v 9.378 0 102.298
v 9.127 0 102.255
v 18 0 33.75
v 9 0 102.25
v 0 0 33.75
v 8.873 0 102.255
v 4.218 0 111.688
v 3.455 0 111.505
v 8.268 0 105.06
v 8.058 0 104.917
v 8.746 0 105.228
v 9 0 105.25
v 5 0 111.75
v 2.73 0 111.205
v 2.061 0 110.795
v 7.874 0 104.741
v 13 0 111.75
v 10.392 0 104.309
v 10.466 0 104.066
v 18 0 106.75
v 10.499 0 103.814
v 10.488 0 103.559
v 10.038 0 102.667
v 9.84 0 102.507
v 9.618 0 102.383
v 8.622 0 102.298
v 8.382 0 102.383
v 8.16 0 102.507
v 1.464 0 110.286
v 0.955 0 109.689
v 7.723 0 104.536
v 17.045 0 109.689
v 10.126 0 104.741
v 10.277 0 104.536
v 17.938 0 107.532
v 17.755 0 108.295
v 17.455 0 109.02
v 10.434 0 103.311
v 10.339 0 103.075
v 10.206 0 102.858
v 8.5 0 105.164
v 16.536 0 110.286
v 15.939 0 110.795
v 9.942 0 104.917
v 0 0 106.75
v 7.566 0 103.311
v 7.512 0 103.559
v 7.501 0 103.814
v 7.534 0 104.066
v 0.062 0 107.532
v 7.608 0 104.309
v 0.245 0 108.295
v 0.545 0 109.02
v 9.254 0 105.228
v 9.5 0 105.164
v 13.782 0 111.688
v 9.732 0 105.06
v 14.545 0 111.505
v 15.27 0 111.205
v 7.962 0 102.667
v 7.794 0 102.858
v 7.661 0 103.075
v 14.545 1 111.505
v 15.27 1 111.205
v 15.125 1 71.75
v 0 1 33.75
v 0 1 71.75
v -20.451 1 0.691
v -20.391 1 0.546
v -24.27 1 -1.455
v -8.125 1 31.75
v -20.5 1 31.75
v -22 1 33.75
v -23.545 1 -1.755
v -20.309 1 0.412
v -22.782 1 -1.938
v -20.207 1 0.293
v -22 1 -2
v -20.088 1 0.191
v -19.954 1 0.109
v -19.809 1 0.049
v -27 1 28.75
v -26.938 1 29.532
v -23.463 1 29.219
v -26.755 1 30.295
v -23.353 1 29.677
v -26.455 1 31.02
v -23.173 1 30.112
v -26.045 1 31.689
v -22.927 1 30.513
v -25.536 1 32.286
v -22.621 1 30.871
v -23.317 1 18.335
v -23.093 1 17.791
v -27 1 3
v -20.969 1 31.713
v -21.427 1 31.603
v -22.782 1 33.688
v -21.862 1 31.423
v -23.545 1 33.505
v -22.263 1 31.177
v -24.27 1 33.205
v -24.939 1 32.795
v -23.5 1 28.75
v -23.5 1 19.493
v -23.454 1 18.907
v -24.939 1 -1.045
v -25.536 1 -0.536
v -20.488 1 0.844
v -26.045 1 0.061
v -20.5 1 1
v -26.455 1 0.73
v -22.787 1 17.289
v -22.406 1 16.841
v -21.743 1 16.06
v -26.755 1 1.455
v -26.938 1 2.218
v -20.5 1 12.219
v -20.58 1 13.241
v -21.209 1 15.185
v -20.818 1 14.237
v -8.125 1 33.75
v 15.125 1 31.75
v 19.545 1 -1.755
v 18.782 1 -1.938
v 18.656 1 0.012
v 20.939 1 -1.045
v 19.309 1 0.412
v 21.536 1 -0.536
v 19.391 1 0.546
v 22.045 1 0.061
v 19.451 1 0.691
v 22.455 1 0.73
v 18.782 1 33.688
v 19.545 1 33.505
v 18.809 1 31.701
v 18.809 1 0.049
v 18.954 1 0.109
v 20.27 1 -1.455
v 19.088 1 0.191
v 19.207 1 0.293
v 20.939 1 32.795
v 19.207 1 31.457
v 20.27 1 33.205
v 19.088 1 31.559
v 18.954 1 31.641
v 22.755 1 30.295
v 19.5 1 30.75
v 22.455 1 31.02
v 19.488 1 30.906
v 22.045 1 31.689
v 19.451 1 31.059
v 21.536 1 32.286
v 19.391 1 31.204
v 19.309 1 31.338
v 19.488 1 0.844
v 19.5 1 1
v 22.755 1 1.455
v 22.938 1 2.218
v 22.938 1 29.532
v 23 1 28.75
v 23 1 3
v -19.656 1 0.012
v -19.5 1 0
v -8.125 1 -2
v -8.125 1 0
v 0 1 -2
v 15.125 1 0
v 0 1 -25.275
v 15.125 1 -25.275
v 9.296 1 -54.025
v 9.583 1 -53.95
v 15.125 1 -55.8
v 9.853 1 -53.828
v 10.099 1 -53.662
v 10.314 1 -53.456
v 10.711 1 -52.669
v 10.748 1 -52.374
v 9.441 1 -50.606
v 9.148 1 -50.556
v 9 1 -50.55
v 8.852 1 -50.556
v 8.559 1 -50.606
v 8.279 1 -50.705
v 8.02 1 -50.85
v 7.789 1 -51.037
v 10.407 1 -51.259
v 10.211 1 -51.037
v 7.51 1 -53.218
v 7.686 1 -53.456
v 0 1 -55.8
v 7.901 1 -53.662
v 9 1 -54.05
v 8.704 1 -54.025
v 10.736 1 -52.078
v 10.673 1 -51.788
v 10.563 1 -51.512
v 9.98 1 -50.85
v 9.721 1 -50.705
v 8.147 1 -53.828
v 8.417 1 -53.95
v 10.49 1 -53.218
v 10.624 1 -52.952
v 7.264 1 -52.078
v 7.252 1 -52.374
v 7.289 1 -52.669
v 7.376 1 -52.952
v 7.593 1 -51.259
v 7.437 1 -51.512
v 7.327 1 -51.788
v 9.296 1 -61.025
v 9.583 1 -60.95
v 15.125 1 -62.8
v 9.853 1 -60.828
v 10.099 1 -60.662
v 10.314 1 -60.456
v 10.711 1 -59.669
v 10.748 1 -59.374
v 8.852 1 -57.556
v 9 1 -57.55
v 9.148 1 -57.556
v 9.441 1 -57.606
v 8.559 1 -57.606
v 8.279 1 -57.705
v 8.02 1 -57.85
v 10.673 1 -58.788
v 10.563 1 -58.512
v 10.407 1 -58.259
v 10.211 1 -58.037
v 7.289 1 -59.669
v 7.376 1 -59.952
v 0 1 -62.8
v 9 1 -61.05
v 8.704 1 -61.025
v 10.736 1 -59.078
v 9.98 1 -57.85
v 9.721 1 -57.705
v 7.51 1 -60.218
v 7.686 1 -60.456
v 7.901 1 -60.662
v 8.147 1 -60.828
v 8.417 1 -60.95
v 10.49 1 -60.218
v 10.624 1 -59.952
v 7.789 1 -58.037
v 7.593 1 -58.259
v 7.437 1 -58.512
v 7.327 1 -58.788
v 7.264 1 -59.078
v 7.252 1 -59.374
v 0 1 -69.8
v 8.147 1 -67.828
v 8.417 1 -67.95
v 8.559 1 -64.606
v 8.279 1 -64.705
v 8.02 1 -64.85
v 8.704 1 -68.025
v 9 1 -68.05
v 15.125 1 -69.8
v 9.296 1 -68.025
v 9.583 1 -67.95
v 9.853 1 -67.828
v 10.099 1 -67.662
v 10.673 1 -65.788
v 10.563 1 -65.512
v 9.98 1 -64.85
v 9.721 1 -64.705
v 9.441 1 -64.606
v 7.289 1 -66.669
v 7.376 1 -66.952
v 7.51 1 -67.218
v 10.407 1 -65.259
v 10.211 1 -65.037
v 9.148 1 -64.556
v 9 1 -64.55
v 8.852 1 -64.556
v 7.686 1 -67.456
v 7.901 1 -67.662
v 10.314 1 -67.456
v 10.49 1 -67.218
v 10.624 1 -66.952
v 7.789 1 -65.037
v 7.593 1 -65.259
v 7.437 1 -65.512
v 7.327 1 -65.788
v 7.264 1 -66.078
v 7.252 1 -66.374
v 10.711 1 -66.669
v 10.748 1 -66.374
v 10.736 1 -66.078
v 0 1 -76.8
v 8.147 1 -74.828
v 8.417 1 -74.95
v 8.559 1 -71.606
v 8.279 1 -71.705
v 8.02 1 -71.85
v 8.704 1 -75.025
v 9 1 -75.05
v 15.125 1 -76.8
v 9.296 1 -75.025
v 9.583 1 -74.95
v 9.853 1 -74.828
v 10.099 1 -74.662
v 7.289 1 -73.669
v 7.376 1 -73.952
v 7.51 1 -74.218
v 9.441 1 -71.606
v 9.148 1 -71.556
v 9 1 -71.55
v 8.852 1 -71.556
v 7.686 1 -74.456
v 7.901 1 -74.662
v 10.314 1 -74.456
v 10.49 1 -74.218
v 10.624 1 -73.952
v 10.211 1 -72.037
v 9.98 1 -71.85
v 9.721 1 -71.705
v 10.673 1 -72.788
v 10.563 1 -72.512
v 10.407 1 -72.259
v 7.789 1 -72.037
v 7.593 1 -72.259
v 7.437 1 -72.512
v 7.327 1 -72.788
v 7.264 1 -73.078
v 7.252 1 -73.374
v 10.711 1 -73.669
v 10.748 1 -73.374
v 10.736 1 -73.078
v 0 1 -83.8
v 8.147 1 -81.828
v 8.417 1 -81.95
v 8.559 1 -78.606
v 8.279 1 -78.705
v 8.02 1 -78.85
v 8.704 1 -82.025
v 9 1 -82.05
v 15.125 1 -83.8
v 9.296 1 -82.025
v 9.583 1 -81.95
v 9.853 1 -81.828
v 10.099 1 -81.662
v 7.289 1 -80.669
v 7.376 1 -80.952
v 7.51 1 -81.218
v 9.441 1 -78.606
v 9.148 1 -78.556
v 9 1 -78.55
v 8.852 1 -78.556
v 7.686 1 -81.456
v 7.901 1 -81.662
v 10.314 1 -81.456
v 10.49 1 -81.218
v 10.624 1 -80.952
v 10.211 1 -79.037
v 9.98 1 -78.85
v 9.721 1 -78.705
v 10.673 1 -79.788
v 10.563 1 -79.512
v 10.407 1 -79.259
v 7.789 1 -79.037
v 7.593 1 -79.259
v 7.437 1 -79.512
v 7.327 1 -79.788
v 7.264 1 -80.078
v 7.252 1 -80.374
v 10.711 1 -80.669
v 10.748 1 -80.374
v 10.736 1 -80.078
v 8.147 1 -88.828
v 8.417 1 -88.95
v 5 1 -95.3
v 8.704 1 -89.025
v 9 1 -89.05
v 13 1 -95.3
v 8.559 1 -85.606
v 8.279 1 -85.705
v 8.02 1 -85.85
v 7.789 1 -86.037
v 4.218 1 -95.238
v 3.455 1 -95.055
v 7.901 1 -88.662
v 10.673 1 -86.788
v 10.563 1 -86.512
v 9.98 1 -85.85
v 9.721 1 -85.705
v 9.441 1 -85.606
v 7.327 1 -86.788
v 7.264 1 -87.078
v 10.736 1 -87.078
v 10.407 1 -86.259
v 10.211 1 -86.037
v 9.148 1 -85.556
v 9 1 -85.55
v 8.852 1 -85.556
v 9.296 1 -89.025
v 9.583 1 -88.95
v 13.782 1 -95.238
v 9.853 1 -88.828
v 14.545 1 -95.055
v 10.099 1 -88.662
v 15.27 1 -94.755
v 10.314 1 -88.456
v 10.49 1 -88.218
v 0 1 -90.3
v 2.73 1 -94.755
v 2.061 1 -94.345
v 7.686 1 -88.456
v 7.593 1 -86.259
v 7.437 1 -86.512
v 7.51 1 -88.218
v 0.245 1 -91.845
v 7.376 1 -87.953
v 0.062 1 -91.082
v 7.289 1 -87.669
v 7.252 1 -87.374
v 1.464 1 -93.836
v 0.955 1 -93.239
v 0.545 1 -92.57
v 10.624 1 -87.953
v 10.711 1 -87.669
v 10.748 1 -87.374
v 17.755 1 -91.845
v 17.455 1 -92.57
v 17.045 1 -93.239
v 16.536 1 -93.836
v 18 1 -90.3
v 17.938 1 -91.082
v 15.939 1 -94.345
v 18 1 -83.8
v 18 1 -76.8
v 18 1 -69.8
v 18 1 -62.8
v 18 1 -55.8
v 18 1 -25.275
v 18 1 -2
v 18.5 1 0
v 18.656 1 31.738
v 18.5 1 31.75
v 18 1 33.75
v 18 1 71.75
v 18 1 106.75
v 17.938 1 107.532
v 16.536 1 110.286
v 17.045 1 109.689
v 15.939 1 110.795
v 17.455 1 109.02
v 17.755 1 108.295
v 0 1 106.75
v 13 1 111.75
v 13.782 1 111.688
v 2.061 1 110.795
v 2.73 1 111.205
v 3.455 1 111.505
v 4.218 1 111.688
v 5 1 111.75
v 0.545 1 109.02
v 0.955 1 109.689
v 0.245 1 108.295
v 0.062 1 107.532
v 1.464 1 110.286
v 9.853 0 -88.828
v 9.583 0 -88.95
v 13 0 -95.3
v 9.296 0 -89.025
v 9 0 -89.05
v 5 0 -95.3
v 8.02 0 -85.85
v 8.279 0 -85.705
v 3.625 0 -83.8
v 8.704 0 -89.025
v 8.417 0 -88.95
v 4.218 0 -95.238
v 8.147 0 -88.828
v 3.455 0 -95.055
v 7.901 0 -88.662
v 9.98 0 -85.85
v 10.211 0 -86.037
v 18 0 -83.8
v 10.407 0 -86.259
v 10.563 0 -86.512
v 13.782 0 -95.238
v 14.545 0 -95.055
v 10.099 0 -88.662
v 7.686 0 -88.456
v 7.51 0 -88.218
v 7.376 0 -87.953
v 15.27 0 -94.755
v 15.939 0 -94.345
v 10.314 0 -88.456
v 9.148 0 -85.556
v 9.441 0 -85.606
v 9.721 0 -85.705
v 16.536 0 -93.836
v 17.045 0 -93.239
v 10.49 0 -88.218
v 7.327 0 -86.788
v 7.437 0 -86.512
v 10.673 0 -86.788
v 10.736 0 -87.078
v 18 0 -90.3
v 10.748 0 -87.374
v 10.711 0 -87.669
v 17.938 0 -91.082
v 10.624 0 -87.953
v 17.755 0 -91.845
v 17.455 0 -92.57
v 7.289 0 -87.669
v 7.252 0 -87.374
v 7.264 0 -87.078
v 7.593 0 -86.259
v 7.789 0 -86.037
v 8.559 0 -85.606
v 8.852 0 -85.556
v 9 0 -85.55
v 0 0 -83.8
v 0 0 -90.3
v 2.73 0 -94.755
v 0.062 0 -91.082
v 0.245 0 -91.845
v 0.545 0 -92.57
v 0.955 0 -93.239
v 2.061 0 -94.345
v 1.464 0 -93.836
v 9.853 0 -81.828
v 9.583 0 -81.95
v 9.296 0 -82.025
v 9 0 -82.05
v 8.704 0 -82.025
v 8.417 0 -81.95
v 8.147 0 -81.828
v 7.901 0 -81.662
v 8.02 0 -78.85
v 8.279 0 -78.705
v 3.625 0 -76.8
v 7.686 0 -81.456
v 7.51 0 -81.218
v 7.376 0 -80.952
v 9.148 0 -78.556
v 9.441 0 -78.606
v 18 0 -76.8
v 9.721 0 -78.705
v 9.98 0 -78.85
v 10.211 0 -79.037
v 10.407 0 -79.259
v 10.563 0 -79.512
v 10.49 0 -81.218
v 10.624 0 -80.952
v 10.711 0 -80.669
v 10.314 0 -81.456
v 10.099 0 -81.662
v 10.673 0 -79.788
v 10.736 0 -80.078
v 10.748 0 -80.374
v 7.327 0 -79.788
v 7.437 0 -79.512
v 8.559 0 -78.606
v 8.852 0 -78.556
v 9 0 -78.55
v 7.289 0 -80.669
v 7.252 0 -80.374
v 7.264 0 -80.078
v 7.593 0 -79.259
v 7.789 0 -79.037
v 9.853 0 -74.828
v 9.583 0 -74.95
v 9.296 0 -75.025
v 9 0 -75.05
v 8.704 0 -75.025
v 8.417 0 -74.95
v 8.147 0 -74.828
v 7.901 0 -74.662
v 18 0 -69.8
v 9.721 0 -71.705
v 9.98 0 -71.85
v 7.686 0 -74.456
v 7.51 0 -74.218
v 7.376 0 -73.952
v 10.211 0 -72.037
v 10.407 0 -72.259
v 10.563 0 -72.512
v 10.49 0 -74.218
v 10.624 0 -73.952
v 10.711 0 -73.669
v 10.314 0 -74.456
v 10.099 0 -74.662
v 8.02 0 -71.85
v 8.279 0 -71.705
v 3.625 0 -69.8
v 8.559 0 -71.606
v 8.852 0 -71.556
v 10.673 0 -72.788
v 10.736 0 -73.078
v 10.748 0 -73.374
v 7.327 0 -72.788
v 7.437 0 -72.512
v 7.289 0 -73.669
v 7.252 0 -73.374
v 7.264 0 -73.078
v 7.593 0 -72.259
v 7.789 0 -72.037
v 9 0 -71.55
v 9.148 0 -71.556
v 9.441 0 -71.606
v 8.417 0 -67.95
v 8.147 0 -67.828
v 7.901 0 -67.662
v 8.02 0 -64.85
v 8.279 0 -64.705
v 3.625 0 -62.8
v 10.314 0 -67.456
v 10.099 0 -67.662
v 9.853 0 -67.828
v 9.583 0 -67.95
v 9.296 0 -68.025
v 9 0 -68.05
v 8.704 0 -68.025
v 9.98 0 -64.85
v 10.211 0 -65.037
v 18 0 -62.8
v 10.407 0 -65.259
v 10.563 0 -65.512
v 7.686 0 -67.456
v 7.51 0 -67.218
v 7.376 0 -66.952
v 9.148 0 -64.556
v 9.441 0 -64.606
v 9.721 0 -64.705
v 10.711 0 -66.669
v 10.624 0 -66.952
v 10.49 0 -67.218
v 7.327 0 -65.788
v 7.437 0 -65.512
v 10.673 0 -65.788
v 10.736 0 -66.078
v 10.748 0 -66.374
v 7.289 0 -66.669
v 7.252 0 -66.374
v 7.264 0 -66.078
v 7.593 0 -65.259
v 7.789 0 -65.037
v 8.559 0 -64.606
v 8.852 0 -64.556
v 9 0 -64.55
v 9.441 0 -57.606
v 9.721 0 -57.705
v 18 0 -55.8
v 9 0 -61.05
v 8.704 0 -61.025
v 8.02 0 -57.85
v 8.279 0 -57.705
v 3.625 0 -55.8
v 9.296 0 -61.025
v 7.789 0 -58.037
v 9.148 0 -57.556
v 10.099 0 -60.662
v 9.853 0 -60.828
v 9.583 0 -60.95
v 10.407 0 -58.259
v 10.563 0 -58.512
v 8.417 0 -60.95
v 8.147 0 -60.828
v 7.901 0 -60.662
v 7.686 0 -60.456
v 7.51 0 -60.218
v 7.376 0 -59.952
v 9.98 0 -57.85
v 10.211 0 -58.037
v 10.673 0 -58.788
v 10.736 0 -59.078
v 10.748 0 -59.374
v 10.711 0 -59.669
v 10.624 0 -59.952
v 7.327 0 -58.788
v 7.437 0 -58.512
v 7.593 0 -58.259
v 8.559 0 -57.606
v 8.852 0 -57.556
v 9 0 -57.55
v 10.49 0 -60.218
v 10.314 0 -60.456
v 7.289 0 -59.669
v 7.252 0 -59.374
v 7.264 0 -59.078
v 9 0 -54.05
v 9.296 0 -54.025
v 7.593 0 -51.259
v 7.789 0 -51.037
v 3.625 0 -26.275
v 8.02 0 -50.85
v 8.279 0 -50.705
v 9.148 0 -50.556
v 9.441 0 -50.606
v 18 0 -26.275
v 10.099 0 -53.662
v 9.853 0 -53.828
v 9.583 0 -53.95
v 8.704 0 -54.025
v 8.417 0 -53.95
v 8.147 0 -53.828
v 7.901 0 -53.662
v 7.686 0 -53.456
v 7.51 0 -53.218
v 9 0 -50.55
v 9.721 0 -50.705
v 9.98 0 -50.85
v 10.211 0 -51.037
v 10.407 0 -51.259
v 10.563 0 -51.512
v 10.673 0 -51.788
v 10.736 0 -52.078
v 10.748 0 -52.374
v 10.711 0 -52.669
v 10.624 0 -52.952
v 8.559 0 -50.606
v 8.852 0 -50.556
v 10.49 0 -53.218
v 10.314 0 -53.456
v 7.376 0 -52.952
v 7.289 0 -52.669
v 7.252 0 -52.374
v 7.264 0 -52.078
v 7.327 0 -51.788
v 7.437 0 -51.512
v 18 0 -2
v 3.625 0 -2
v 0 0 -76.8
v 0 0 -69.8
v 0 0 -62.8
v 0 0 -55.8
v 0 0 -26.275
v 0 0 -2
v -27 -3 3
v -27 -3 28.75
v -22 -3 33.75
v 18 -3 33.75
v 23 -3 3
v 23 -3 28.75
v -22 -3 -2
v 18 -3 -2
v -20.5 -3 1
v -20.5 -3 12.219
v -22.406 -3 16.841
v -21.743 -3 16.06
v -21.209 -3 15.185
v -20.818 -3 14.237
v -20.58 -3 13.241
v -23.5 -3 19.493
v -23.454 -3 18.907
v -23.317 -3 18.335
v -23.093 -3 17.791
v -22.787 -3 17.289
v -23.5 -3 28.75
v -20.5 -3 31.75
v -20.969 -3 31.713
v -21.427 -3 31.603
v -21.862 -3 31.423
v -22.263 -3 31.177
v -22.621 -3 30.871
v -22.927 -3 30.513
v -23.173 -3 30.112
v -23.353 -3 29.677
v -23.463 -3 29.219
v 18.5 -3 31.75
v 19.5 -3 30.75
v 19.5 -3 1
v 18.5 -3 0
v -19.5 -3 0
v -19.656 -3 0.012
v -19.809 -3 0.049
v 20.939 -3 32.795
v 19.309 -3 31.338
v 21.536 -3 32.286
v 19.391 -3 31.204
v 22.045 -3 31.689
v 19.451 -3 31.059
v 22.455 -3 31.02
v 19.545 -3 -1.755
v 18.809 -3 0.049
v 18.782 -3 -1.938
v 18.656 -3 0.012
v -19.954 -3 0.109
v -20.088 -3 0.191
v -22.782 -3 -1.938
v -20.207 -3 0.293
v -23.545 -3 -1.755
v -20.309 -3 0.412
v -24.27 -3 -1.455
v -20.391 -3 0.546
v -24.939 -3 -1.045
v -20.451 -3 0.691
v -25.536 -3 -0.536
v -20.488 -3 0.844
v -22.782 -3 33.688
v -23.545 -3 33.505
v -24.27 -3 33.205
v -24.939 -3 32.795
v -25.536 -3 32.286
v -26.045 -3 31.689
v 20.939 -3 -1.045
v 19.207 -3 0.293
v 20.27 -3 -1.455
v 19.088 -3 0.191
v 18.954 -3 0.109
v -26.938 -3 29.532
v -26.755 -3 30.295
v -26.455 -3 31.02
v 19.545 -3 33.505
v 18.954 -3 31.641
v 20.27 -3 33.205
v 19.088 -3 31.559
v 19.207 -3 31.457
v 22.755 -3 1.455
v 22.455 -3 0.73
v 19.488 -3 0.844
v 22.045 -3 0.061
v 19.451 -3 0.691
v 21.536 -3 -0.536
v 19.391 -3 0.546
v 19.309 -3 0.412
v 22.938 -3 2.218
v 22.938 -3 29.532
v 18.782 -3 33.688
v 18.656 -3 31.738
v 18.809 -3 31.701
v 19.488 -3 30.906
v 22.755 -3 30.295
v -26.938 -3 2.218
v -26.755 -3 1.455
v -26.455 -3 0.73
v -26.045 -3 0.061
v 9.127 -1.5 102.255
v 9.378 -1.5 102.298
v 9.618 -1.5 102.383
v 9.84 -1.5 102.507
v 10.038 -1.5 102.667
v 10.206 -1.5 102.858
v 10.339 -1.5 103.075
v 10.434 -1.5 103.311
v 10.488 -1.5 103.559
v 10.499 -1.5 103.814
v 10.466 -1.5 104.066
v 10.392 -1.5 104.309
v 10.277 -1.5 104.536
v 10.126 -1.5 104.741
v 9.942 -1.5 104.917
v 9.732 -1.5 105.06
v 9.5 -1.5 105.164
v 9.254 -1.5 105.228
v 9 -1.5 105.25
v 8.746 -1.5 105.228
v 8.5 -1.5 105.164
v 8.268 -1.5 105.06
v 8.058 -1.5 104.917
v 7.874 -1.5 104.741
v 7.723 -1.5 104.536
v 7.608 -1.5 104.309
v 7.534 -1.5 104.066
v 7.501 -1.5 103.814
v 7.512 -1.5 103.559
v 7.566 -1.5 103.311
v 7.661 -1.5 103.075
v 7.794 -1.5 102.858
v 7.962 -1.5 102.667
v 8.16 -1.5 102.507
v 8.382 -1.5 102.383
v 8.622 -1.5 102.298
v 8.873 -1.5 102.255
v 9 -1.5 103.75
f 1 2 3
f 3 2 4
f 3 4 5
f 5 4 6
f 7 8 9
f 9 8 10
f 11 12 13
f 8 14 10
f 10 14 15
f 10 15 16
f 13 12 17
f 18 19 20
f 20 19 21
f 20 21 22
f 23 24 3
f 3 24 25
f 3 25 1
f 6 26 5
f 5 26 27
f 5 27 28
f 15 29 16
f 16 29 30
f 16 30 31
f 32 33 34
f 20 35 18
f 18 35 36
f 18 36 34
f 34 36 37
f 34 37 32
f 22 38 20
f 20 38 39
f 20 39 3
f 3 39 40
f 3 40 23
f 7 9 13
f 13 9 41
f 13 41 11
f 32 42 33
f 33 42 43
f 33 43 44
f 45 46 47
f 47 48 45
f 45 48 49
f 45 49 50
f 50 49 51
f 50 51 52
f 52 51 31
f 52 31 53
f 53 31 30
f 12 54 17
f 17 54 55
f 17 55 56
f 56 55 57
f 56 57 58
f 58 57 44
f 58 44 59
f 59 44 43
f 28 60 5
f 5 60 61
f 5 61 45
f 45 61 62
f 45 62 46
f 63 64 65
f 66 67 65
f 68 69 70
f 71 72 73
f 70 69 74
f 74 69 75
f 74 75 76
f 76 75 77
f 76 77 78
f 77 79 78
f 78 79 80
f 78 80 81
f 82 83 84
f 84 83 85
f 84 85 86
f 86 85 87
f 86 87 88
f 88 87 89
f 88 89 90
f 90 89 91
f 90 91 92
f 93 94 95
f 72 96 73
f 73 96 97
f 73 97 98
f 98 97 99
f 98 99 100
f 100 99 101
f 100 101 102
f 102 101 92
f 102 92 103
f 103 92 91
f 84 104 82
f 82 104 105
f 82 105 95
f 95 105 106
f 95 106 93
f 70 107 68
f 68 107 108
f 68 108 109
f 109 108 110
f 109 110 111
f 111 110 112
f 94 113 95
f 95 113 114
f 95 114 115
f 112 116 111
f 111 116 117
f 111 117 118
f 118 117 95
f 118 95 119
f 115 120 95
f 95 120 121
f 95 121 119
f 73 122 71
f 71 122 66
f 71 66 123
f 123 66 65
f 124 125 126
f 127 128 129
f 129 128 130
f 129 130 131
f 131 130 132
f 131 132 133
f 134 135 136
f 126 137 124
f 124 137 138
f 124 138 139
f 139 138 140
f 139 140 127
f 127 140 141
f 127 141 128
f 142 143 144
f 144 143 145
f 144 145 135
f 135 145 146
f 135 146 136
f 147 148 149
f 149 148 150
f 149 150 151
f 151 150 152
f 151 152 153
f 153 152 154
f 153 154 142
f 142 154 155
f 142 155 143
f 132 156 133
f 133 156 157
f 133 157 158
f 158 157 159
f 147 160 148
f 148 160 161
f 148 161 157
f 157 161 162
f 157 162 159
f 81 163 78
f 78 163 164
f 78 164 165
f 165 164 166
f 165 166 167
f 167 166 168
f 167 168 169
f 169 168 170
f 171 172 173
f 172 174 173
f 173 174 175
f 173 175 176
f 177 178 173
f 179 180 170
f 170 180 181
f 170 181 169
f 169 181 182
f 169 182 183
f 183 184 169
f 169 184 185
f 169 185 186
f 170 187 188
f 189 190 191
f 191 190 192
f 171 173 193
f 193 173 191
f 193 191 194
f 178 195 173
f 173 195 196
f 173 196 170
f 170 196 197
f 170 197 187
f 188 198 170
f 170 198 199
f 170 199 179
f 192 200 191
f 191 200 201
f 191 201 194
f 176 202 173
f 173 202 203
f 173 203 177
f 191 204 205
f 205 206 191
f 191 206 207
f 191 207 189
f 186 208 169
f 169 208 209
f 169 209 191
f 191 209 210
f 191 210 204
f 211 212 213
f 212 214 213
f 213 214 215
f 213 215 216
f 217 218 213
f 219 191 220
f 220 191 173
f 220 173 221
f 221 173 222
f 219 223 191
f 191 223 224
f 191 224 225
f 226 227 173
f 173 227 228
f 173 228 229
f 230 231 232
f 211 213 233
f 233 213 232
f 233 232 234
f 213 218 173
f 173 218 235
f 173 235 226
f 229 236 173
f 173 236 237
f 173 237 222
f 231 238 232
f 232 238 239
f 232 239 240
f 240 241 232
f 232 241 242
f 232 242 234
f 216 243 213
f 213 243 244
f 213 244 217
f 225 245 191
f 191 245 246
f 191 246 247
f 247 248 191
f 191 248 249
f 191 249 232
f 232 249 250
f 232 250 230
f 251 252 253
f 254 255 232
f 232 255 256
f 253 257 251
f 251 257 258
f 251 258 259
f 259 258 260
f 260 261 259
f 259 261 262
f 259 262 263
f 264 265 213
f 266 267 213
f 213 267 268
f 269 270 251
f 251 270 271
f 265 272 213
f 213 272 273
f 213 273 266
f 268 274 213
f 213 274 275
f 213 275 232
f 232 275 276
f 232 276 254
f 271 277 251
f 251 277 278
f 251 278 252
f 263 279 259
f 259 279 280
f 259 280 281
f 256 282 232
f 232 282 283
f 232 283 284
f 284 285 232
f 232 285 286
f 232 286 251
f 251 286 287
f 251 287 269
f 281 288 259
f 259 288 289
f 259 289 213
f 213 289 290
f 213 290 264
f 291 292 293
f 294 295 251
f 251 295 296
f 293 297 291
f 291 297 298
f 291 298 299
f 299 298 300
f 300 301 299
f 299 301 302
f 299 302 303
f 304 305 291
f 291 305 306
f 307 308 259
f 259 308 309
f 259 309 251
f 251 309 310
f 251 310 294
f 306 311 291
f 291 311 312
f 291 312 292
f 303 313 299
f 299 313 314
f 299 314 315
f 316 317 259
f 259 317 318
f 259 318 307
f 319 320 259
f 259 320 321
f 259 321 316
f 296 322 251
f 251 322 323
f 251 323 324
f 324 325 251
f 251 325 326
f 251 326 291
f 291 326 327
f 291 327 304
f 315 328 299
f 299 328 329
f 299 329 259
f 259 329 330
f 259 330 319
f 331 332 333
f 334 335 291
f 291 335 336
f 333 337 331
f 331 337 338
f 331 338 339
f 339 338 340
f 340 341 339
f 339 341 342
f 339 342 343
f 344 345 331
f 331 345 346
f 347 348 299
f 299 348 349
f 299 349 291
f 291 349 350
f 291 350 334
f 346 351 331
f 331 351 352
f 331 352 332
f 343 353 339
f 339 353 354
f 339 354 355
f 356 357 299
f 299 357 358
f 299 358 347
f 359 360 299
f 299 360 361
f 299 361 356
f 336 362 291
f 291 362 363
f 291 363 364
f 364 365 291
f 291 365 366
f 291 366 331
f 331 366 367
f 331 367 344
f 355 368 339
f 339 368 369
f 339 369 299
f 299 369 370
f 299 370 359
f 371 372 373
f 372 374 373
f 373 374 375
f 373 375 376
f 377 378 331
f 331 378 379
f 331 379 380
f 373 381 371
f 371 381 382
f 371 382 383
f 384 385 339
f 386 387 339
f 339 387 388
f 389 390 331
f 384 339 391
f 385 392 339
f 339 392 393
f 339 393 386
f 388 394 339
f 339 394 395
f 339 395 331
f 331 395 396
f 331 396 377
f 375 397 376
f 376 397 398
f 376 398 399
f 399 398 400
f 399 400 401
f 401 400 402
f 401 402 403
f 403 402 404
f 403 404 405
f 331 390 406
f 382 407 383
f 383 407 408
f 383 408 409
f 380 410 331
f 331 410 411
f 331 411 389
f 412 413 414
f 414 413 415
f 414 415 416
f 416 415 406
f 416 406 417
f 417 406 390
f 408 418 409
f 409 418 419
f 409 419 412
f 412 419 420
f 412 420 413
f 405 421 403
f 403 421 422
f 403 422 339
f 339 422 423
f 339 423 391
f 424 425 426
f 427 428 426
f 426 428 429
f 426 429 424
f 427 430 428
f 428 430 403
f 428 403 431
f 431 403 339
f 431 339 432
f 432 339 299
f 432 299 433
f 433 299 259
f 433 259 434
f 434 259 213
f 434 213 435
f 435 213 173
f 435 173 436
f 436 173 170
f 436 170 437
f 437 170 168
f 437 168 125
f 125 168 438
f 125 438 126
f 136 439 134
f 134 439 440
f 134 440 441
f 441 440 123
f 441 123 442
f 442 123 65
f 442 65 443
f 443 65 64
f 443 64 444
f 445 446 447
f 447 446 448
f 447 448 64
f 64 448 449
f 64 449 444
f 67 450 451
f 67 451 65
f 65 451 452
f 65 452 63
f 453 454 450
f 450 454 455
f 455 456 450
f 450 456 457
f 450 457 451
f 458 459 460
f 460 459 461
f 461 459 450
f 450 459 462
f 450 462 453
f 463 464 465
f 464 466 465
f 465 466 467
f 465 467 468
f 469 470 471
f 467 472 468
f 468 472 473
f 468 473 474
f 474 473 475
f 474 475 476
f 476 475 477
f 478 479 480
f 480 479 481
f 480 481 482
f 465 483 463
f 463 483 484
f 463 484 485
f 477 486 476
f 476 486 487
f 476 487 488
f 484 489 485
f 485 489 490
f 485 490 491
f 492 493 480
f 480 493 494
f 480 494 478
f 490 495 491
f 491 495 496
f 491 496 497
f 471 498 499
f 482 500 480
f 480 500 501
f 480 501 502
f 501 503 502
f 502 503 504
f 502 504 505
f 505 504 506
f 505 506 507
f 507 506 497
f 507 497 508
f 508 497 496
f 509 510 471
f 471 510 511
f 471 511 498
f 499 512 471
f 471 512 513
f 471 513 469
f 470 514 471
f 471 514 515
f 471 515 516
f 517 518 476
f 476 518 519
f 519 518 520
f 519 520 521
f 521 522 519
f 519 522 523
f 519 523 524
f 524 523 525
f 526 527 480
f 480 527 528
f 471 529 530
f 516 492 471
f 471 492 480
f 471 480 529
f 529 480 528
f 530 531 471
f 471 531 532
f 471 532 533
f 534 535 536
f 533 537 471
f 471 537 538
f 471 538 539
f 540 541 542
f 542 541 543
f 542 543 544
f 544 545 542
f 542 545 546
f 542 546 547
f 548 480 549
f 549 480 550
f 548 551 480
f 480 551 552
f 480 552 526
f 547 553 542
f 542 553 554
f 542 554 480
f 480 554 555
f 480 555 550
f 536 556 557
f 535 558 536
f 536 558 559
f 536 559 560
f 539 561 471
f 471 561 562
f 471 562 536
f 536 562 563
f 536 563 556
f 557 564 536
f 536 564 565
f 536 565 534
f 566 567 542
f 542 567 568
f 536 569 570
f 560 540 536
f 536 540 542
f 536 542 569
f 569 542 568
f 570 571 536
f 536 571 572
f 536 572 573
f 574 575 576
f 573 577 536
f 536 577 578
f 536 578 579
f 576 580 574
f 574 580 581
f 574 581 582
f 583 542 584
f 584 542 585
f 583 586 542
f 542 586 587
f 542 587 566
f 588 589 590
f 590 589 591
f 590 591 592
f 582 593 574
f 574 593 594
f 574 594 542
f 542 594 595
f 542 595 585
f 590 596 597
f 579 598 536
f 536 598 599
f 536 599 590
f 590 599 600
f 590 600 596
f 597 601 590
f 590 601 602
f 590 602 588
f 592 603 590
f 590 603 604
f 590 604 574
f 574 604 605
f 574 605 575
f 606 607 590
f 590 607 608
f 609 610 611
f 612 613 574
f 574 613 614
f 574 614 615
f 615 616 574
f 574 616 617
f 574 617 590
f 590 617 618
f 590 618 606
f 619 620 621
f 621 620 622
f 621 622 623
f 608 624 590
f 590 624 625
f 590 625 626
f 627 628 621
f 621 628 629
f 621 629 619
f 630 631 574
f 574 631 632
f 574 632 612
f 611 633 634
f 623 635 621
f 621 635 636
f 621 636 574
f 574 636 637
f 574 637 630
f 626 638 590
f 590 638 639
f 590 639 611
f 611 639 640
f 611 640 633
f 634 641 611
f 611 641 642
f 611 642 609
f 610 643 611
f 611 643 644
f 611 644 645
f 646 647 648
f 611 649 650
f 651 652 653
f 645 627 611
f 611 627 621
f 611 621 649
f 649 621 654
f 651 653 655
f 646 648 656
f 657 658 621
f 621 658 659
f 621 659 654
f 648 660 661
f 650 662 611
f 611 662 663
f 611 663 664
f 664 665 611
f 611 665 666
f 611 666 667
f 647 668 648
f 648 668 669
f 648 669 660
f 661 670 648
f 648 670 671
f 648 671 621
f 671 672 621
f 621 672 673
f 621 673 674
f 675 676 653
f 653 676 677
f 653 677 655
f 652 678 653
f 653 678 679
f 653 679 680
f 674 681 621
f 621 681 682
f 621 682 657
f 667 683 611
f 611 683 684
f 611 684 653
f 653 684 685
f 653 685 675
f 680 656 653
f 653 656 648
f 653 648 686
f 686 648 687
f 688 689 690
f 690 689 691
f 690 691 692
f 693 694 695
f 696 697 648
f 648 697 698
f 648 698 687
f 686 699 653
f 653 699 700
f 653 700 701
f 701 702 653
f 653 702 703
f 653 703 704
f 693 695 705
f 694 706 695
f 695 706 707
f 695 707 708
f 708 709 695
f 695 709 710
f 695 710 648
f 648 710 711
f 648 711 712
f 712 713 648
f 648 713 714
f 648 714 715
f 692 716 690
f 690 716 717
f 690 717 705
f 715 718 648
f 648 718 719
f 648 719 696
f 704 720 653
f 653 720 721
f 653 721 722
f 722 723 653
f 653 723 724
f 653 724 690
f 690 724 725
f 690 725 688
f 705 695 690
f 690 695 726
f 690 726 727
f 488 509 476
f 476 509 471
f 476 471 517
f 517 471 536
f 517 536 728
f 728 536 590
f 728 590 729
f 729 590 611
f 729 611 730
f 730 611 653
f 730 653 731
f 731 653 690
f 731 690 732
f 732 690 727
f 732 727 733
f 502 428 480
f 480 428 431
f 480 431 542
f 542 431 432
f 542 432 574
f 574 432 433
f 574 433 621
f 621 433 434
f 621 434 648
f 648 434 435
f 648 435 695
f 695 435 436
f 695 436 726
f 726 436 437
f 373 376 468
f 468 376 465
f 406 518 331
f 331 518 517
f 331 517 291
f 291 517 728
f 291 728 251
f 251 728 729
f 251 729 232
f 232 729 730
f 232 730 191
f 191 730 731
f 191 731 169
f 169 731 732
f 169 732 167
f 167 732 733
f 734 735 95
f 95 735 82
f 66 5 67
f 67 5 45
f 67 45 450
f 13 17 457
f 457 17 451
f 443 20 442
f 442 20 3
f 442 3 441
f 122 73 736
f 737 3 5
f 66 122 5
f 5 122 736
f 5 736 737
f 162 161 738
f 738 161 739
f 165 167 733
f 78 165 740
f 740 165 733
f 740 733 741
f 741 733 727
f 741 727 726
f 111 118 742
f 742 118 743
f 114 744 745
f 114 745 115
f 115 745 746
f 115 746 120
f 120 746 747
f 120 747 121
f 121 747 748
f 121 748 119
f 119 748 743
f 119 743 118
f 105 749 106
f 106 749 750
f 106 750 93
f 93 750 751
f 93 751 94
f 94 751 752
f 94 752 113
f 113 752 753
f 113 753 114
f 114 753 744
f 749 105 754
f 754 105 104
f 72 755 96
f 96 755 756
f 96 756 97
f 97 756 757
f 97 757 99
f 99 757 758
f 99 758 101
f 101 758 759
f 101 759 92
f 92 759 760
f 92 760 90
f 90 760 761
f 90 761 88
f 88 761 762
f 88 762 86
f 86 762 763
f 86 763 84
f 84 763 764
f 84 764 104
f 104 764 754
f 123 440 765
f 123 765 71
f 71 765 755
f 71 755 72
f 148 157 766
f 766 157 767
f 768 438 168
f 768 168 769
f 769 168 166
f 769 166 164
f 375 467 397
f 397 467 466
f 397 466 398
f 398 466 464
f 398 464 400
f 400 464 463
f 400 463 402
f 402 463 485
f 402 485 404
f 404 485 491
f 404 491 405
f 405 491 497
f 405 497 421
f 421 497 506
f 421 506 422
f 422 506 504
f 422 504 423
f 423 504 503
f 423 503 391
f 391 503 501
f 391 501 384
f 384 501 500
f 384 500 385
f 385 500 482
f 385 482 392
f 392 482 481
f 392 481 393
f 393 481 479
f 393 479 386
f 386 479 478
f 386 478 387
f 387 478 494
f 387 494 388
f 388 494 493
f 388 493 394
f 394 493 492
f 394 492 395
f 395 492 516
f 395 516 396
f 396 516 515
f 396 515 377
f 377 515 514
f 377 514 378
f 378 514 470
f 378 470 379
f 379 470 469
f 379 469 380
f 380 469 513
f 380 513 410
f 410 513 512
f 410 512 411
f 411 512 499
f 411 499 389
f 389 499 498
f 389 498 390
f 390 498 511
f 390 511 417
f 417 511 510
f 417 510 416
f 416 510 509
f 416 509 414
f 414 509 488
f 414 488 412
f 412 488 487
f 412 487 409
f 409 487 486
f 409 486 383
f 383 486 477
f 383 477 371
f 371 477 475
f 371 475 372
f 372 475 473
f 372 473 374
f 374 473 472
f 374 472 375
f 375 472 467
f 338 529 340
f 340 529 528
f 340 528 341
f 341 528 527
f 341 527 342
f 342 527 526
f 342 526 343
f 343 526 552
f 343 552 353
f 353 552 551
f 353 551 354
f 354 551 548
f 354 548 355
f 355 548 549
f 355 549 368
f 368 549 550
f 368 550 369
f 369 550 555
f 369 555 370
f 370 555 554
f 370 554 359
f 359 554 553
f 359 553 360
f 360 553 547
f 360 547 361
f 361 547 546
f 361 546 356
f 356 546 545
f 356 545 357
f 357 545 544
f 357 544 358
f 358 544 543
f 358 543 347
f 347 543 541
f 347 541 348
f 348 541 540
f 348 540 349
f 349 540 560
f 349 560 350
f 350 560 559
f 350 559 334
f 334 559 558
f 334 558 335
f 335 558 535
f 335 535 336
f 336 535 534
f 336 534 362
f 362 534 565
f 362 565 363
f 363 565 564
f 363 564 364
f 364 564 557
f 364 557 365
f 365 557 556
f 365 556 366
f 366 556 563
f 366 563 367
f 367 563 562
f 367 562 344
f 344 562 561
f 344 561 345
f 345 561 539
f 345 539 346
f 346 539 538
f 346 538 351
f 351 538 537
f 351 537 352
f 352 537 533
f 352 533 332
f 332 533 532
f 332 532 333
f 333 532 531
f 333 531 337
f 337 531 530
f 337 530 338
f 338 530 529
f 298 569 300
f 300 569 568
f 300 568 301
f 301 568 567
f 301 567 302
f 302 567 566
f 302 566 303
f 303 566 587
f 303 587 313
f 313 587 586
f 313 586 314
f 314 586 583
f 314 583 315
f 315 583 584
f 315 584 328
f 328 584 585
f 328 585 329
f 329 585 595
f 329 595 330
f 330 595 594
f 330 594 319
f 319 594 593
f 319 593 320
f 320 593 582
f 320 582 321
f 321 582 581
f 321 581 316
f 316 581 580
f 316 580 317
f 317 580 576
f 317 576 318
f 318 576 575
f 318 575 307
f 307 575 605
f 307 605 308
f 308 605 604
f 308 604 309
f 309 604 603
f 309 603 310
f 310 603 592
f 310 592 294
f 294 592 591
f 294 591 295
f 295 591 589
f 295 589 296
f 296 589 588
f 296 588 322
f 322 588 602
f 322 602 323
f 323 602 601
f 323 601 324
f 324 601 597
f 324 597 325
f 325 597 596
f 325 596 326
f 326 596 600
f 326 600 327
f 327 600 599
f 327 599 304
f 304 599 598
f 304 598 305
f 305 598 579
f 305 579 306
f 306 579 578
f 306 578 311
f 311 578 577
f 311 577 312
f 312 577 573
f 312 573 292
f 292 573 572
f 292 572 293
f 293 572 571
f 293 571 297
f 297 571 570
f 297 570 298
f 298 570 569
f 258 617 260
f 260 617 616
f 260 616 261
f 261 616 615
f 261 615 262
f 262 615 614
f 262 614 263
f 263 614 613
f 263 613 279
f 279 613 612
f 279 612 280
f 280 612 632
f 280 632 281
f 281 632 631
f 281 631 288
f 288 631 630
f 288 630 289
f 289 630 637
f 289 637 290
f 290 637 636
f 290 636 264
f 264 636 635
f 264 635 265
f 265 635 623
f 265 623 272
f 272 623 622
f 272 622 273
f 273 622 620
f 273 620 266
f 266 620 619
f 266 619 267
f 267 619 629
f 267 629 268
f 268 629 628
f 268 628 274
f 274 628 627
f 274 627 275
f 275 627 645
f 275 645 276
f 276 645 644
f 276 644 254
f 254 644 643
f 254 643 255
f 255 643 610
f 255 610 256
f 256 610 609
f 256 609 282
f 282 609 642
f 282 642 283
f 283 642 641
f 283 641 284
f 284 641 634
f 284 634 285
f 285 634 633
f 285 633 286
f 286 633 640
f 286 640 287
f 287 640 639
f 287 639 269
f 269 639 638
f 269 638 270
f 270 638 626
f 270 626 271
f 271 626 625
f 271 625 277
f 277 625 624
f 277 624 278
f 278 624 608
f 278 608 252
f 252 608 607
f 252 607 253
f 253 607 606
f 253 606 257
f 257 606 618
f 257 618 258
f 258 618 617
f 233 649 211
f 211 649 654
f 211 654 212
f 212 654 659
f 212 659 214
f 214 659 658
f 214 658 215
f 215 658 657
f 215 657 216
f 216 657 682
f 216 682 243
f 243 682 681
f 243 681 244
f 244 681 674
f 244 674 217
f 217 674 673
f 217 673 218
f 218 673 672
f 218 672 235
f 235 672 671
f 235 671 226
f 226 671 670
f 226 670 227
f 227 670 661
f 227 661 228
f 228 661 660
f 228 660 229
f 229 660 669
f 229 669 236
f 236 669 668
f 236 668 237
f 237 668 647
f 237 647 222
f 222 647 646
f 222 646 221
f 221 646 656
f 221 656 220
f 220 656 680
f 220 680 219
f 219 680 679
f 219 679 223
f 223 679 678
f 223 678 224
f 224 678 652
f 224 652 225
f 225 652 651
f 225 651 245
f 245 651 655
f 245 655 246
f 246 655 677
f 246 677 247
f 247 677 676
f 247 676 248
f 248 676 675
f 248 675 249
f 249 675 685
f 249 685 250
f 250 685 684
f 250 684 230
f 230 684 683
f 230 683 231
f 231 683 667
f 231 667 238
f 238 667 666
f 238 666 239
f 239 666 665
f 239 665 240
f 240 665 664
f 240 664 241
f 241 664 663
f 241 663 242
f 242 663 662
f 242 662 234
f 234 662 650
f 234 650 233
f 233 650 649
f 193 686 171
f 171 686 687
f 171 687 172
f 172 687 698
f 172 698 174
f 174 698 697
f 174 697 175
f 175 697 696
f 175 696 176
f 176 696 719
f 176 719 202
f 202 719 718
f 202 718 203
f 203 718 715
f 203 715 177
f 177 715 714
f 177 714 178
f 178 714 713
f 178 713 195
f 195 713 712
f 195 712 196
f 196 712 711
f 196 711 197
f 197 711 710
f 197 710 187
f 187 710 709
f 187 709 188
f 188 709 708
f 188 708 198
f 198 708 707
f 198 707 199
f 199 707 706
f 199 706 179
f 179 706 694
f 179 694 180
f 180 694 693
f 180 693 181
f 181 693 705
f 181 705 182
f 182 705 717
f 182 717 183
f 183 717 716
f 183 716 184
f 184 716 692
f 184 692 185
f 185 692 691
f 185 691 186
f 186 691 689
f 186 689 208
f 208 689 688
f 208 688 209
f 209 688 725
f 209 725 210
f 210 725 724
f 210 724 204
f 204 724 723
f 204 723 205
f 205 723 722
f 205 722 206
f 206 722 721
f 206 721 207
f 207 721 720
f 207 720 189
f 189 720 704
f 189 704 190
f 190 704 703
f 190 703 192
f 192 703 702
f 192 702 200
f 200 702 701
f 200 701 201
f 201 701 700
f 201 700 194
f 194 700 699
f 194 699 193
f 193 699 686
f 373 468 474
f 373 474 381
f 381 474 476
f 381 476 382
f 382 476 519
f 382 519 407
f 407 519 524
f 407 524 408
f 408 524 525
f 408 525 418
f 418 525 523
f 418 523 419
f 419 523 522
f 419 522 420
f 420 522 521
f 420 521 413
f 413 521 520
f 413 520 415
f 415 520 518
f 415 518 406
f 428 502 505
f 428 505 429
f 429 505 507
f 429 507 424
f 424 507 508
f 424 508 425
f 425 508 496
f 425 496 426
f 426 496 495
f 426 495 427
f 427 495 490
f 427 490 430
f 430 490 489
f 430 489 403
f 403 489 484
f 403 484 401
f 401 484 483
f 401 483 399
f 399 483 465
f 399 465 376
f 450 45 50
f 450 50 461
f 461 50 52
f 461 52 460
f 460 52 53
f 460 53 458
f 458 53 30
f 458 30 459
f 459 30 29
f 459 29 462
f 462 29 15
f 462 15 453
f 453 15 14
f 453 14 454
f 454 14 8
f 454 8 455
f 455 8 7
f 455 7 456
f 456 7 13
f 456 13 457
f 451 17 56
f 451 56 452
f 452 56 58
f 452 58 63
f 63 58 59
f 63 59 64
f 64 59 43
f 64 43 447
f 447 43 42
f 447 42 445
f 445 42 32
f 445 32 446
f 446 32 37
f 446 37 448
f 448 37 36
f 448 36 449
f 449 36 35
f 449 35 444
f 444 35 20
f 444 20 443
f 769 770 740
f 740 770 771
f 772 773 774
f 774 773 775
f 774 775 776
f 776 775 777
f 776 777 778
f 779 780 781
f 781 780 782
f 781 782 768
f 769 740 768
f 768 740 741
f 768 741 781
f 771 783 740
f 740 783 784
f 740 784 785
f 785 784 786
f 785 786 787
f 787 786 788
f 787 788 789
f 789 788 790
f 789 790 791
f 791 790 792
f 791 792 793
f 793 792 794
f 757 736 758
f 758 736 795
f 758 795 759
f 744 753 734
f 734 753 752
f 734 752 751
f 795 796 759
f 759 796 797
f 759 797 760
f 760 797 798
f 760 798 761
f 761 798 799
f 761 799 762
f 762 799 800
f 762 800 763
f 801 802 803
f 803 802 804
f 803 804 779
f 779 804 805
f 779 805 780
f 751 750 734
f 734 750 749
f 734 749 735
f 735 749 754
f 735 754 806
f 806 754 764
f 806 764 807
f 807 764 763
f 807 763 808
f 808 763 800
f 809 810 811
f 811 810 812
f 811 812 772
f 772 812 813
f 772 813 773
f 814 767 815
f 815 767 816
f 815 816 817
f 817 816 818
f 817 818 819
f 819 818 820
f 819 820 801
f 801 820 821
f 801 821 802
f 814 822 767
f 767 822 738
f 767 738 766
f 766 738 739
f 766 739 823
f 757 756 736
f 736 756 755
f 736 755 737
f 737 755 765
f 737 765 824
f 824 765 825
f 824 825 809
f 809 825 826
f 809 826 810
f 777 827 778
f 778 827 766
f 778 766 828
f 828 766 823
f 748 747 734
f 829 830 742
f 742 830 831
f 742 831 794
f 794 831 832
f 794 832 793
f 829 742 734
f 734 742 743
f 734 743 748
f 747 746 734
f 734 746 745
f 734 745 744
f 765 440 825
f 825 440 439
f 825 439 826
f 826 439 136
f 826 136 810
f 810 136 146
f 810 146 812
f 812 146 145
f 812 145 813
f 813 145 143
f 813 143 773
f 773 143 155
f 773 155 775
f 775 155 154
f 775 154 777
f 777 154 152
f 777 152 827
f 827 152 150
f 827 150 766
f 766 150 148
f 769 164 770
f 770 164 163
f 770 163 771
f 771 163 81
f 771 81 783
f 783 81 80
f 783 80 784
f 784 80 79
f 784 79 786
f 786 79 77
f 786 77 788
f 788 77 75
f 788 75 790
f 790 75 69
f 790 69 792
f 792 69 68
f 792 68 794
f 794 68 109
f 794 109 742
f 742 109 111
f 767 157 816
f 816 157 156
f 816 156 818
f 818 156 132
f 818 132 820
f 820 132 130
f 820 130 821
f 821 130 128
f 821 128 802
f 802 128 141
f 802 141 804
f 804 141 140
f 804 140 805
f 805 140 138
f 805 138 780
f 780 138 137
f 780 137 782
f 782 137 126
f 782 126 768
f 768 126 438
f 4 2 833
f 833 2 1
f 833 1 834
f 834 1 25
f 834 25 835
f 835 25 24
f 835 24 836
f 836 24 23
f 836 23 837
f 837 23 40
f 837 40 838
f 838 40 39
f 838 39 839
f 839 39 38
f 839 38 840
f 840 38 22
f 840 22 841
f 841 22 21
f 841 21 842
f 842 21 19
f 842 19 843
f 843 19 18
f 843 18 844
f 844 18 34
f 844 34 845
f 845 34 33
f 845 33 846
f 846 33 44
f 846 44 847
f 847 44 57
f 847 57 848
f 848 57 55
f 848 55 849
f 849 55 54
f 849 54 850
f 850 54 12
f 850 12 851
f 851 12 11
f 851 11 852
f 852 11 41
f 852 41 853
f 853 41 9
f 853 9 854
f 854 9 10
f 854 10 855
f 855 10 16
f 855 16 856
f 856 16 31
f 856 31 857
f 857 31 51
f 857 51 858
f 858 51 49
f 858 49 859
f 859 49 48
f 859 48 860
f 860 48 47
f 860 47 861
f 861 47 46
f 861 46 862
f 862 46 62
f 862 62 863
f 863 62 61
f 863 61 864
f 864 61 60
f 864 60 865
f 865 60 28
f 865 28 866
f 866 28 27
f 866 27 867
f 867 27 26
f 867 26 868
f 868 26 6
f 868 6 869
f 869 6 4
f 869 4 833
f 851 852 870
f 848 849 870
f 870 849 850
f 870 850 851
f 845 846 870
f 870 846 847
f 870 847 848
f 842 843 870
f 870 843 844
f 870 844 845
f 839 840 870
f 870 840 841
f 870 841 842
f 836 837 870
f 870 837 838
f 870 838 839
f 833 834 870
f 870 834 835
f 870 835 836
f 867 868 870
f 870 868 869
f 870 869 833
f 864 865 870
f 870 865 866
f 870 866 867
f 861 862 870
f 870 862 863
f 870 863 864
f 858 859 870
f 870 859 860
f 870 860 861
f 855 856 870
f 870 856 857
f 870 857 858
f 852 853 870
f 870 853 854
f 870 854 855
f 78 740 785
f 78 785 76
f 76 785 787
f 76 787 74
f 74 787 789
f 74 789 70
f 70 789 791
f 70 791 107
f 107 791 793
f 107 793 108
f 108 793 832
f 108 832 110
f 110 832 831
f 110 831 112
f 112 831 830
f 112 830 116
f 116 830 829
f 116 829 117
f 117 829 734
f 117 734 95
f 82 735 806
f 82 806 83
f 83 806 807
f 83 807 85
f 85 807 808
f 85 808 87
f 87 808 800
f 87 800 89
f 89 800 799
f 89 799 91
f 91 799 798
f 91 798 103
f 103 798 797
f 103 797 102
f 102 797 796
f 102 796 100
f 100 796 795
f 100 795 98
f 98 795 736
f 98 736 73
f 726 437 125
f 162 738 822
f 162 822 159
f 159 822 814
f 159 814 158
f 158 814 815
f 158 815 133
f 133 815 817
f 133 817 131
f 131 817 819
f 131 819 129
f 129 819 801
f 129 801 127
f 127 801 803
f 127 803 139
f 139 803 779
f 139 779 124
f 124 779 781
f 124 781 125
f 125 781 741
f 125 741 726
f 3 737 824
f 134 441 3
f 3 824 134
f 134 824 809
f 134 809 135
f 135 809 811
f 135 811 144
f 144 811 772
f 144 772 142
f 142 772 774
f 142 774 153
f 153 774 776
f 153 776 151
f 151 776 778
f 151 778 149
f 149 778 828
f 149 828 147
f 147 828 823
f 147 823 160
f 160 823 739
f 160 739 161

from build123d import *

# Parameters (mm, degrees)
SKETCH1_R           = 1.75
BOSS_EXTRUDE1_DEPTH = 1
FILLET1_R           = 5
BOSS_EXTRUDE2_START = 3
SKETCH2_W           = 50
SKETCH2_H           = 35.75
BOSS_EXTRUDE2_DEPTH = 3
FILLET3_R           = 1
SKETCH4_R           = 1.5
BOSS_EXTRUDE3_DEPTH = 2.5
BOSS_EXTRUDE4_START = -1
SKETCH5_R           = 1.75
BOSS_EXTRUDE4_DEPTH = 1
FILLET8_R           = 5


with BuildPart() as part:
    # Sketch1 → Boss-Extrude1 (new body)
    with BuildSketch(Plane(origin=(0, 0, 0), x_dir=(1, 0, 0), z_dir=(0, 1, 0))):
        Polygon((-27, 2), (0, 2), (0, 95.3), (18, 95.3), (18, 2), (23, 2), (23, -33.75), (18, -33.75), (18, -111.75), (0, -111.75), (0, -33.75), (-27, -33.75), align=None)
        with Locations(Location((9, -103.75, 0), (0, 0, 270))):
            Circle(SKETCH1_R, mode=Mode.SUBTRACT)
        with Locations(Location((9, 87.3, 0), (0, 0, 270))):
            Circle(SKETCH1_R, mode=Mode.SUBTRACT)
        with Locations(Location((9, 80.3, 0), (0, 0, 270))):
            Circle(SKETCH1_R, mode=Mode.SUBTRACT)
        with Locations(Location((9, 73.3, 0), (0, 0, 270))):
            Circle(SKETCH1_R, mode=Mode.SUBTRACT)
        with Locations(Location((9, 66.3, 0), (0, 0, 270))):
            Circle(SKETCH1_R, mode=Mode.SUBTRACT)
        with Locations(Location((9, 59.3, 0), (0, 0, 270))):
            Circle(SKETCH1_R, mode=Mode.SUBTRACT)
        with Locations(Location((9, 52.3, 0), (0, 0, 270))):
            Circle(SKETCH1_R, mode=Mode.SUBTRACT)
        with BuildLine():
            Line((-23.5, -28.75), (-23.5, -19.49269966))
            ThreePointArc((-23.5, -19.49269966), (-23.215880477, -18.058623358), (-22.406445692, -16.841202283))
            ThreePointArc((-22.406445692, -16.841202283), (-20.995319195, -14.718813714), (-20.5, -12.218719692))
            Line((-20.5, -12.218719692), (-20.5, 0))
            Line((-20.5, 0), (19.5, 0))
            Line((19.5, 0), (19.5, -31.75))
            Line((19.5, -31.75), (-20.5, -31.75))
            ThreePointArc((-20.5, -31.75), (-22.621320344, -30.871320344), (-23.5, -28.75))
        make_face(mode=Mode.SUBTRACT)
    extrude(amount=BOSS_EXTRUDE1_DEPTH)

    # Fillet1
    fillet1_edges = [part.edges().sort_by_distance(p)[0] for p in [
        (18, 0.5, 111.75),
        (0, 0.5, 111.75),
        (0, 0.5, -95.3),
        (18, 0.5, -95.3),
    ]]
    fillet(fillet1_edges, radius=FILLET1_R)

    # Sketch2 → Boss-Extrude2 (add)
    with BuildSketch(Plane.XZ.offset(BOSS_EXTRUDE2_START)):
        with Locations((-2, 15.875)):
            Rectangle(SKETCH2_W, SKETCH2_H)
        with BuildLine():
            ThreePointArc((-22.406445692, 16.841202283), (-23.215880477, 18.058623358), (-23.5, 19.49269966))
            Line((-23.5, 19.49269966), (-23.5, 28.75))
            ThreePointArc((-23.5, 28.75), (-22.621320344, 30.871320344), (-20.5, 31.75))
            Line((-20.5, 31.75), (19.5, 31.75))
            Line((19.5, 31.75), (19.5, 0))
            Line((19.5, 0), (-20.5, 0))
            Line((-20.5, 0), (-20.5, 12.218719692))
            ThreePointArc((-20.5, 12.218719692), (-20.995319195, 14.718813714), (-22.406445692, 16.841202283))
        make_face(mode=Mode.SUBTRACT)
    extrude(amount=-BOSS_EXTRUDE2_DEPTH)

    # Fillet3
    fillet3_edges = [part.edges().sort_by_distance(p)[0] for p in [
        (-20.5, -1, 0),
        (19.5, -1, 31.75),
        (19.5, -1, 0),
    ]]
    fillet(fillet3_edges, radius=FILLET3_R)



with BuildPart() as body_2:
    # Sketch4 → Boss-Extrude3 (new body)
    with BuildSketch(Plane(origin=(0, 1, 0), x_dir=(1, 0, 0), z_dir=(0, 1, 0))):
        with Locations(Location((9, -103.75, 0), (0, 0, 270))):
            Circle(SKETCH4_R)
    extrude(amount=-BOSS_EXTRUDE3_DEPTH)


with BuildPart() as part_1:
    add(part.part)

    add(body_2.part)  # Boss-Extrude4 merges body 2
    # Sketch5 → Boss-Extrude4 (add)
    with BuildSketch(Plane(origin=(0, 1, 0), x_dir=(1, 0, 0), z_dir=(0, 1, 0)).offset(BOSS_EXTRUDE4_START)):
        with Locations((9, -103.75)):
            Circle(SKETCH5_R)
    extrude(amount=BOSS_EXTRUDE4_DEPTH)

    # Fillet8
    fillet8_edges = [part_1.edges().sort_by_distance(p)[0] for p in [
        (23, -1, -2),
        (23, -1, 33.75),
        (-27, -1, 33.75),
        (-27, -1, -2),
    ]]
    fillet(fillet8_edges, radius=FILLET8_R - 0.0001)  # a hair under: the kernel refuses the full size


solid = part_1.part
